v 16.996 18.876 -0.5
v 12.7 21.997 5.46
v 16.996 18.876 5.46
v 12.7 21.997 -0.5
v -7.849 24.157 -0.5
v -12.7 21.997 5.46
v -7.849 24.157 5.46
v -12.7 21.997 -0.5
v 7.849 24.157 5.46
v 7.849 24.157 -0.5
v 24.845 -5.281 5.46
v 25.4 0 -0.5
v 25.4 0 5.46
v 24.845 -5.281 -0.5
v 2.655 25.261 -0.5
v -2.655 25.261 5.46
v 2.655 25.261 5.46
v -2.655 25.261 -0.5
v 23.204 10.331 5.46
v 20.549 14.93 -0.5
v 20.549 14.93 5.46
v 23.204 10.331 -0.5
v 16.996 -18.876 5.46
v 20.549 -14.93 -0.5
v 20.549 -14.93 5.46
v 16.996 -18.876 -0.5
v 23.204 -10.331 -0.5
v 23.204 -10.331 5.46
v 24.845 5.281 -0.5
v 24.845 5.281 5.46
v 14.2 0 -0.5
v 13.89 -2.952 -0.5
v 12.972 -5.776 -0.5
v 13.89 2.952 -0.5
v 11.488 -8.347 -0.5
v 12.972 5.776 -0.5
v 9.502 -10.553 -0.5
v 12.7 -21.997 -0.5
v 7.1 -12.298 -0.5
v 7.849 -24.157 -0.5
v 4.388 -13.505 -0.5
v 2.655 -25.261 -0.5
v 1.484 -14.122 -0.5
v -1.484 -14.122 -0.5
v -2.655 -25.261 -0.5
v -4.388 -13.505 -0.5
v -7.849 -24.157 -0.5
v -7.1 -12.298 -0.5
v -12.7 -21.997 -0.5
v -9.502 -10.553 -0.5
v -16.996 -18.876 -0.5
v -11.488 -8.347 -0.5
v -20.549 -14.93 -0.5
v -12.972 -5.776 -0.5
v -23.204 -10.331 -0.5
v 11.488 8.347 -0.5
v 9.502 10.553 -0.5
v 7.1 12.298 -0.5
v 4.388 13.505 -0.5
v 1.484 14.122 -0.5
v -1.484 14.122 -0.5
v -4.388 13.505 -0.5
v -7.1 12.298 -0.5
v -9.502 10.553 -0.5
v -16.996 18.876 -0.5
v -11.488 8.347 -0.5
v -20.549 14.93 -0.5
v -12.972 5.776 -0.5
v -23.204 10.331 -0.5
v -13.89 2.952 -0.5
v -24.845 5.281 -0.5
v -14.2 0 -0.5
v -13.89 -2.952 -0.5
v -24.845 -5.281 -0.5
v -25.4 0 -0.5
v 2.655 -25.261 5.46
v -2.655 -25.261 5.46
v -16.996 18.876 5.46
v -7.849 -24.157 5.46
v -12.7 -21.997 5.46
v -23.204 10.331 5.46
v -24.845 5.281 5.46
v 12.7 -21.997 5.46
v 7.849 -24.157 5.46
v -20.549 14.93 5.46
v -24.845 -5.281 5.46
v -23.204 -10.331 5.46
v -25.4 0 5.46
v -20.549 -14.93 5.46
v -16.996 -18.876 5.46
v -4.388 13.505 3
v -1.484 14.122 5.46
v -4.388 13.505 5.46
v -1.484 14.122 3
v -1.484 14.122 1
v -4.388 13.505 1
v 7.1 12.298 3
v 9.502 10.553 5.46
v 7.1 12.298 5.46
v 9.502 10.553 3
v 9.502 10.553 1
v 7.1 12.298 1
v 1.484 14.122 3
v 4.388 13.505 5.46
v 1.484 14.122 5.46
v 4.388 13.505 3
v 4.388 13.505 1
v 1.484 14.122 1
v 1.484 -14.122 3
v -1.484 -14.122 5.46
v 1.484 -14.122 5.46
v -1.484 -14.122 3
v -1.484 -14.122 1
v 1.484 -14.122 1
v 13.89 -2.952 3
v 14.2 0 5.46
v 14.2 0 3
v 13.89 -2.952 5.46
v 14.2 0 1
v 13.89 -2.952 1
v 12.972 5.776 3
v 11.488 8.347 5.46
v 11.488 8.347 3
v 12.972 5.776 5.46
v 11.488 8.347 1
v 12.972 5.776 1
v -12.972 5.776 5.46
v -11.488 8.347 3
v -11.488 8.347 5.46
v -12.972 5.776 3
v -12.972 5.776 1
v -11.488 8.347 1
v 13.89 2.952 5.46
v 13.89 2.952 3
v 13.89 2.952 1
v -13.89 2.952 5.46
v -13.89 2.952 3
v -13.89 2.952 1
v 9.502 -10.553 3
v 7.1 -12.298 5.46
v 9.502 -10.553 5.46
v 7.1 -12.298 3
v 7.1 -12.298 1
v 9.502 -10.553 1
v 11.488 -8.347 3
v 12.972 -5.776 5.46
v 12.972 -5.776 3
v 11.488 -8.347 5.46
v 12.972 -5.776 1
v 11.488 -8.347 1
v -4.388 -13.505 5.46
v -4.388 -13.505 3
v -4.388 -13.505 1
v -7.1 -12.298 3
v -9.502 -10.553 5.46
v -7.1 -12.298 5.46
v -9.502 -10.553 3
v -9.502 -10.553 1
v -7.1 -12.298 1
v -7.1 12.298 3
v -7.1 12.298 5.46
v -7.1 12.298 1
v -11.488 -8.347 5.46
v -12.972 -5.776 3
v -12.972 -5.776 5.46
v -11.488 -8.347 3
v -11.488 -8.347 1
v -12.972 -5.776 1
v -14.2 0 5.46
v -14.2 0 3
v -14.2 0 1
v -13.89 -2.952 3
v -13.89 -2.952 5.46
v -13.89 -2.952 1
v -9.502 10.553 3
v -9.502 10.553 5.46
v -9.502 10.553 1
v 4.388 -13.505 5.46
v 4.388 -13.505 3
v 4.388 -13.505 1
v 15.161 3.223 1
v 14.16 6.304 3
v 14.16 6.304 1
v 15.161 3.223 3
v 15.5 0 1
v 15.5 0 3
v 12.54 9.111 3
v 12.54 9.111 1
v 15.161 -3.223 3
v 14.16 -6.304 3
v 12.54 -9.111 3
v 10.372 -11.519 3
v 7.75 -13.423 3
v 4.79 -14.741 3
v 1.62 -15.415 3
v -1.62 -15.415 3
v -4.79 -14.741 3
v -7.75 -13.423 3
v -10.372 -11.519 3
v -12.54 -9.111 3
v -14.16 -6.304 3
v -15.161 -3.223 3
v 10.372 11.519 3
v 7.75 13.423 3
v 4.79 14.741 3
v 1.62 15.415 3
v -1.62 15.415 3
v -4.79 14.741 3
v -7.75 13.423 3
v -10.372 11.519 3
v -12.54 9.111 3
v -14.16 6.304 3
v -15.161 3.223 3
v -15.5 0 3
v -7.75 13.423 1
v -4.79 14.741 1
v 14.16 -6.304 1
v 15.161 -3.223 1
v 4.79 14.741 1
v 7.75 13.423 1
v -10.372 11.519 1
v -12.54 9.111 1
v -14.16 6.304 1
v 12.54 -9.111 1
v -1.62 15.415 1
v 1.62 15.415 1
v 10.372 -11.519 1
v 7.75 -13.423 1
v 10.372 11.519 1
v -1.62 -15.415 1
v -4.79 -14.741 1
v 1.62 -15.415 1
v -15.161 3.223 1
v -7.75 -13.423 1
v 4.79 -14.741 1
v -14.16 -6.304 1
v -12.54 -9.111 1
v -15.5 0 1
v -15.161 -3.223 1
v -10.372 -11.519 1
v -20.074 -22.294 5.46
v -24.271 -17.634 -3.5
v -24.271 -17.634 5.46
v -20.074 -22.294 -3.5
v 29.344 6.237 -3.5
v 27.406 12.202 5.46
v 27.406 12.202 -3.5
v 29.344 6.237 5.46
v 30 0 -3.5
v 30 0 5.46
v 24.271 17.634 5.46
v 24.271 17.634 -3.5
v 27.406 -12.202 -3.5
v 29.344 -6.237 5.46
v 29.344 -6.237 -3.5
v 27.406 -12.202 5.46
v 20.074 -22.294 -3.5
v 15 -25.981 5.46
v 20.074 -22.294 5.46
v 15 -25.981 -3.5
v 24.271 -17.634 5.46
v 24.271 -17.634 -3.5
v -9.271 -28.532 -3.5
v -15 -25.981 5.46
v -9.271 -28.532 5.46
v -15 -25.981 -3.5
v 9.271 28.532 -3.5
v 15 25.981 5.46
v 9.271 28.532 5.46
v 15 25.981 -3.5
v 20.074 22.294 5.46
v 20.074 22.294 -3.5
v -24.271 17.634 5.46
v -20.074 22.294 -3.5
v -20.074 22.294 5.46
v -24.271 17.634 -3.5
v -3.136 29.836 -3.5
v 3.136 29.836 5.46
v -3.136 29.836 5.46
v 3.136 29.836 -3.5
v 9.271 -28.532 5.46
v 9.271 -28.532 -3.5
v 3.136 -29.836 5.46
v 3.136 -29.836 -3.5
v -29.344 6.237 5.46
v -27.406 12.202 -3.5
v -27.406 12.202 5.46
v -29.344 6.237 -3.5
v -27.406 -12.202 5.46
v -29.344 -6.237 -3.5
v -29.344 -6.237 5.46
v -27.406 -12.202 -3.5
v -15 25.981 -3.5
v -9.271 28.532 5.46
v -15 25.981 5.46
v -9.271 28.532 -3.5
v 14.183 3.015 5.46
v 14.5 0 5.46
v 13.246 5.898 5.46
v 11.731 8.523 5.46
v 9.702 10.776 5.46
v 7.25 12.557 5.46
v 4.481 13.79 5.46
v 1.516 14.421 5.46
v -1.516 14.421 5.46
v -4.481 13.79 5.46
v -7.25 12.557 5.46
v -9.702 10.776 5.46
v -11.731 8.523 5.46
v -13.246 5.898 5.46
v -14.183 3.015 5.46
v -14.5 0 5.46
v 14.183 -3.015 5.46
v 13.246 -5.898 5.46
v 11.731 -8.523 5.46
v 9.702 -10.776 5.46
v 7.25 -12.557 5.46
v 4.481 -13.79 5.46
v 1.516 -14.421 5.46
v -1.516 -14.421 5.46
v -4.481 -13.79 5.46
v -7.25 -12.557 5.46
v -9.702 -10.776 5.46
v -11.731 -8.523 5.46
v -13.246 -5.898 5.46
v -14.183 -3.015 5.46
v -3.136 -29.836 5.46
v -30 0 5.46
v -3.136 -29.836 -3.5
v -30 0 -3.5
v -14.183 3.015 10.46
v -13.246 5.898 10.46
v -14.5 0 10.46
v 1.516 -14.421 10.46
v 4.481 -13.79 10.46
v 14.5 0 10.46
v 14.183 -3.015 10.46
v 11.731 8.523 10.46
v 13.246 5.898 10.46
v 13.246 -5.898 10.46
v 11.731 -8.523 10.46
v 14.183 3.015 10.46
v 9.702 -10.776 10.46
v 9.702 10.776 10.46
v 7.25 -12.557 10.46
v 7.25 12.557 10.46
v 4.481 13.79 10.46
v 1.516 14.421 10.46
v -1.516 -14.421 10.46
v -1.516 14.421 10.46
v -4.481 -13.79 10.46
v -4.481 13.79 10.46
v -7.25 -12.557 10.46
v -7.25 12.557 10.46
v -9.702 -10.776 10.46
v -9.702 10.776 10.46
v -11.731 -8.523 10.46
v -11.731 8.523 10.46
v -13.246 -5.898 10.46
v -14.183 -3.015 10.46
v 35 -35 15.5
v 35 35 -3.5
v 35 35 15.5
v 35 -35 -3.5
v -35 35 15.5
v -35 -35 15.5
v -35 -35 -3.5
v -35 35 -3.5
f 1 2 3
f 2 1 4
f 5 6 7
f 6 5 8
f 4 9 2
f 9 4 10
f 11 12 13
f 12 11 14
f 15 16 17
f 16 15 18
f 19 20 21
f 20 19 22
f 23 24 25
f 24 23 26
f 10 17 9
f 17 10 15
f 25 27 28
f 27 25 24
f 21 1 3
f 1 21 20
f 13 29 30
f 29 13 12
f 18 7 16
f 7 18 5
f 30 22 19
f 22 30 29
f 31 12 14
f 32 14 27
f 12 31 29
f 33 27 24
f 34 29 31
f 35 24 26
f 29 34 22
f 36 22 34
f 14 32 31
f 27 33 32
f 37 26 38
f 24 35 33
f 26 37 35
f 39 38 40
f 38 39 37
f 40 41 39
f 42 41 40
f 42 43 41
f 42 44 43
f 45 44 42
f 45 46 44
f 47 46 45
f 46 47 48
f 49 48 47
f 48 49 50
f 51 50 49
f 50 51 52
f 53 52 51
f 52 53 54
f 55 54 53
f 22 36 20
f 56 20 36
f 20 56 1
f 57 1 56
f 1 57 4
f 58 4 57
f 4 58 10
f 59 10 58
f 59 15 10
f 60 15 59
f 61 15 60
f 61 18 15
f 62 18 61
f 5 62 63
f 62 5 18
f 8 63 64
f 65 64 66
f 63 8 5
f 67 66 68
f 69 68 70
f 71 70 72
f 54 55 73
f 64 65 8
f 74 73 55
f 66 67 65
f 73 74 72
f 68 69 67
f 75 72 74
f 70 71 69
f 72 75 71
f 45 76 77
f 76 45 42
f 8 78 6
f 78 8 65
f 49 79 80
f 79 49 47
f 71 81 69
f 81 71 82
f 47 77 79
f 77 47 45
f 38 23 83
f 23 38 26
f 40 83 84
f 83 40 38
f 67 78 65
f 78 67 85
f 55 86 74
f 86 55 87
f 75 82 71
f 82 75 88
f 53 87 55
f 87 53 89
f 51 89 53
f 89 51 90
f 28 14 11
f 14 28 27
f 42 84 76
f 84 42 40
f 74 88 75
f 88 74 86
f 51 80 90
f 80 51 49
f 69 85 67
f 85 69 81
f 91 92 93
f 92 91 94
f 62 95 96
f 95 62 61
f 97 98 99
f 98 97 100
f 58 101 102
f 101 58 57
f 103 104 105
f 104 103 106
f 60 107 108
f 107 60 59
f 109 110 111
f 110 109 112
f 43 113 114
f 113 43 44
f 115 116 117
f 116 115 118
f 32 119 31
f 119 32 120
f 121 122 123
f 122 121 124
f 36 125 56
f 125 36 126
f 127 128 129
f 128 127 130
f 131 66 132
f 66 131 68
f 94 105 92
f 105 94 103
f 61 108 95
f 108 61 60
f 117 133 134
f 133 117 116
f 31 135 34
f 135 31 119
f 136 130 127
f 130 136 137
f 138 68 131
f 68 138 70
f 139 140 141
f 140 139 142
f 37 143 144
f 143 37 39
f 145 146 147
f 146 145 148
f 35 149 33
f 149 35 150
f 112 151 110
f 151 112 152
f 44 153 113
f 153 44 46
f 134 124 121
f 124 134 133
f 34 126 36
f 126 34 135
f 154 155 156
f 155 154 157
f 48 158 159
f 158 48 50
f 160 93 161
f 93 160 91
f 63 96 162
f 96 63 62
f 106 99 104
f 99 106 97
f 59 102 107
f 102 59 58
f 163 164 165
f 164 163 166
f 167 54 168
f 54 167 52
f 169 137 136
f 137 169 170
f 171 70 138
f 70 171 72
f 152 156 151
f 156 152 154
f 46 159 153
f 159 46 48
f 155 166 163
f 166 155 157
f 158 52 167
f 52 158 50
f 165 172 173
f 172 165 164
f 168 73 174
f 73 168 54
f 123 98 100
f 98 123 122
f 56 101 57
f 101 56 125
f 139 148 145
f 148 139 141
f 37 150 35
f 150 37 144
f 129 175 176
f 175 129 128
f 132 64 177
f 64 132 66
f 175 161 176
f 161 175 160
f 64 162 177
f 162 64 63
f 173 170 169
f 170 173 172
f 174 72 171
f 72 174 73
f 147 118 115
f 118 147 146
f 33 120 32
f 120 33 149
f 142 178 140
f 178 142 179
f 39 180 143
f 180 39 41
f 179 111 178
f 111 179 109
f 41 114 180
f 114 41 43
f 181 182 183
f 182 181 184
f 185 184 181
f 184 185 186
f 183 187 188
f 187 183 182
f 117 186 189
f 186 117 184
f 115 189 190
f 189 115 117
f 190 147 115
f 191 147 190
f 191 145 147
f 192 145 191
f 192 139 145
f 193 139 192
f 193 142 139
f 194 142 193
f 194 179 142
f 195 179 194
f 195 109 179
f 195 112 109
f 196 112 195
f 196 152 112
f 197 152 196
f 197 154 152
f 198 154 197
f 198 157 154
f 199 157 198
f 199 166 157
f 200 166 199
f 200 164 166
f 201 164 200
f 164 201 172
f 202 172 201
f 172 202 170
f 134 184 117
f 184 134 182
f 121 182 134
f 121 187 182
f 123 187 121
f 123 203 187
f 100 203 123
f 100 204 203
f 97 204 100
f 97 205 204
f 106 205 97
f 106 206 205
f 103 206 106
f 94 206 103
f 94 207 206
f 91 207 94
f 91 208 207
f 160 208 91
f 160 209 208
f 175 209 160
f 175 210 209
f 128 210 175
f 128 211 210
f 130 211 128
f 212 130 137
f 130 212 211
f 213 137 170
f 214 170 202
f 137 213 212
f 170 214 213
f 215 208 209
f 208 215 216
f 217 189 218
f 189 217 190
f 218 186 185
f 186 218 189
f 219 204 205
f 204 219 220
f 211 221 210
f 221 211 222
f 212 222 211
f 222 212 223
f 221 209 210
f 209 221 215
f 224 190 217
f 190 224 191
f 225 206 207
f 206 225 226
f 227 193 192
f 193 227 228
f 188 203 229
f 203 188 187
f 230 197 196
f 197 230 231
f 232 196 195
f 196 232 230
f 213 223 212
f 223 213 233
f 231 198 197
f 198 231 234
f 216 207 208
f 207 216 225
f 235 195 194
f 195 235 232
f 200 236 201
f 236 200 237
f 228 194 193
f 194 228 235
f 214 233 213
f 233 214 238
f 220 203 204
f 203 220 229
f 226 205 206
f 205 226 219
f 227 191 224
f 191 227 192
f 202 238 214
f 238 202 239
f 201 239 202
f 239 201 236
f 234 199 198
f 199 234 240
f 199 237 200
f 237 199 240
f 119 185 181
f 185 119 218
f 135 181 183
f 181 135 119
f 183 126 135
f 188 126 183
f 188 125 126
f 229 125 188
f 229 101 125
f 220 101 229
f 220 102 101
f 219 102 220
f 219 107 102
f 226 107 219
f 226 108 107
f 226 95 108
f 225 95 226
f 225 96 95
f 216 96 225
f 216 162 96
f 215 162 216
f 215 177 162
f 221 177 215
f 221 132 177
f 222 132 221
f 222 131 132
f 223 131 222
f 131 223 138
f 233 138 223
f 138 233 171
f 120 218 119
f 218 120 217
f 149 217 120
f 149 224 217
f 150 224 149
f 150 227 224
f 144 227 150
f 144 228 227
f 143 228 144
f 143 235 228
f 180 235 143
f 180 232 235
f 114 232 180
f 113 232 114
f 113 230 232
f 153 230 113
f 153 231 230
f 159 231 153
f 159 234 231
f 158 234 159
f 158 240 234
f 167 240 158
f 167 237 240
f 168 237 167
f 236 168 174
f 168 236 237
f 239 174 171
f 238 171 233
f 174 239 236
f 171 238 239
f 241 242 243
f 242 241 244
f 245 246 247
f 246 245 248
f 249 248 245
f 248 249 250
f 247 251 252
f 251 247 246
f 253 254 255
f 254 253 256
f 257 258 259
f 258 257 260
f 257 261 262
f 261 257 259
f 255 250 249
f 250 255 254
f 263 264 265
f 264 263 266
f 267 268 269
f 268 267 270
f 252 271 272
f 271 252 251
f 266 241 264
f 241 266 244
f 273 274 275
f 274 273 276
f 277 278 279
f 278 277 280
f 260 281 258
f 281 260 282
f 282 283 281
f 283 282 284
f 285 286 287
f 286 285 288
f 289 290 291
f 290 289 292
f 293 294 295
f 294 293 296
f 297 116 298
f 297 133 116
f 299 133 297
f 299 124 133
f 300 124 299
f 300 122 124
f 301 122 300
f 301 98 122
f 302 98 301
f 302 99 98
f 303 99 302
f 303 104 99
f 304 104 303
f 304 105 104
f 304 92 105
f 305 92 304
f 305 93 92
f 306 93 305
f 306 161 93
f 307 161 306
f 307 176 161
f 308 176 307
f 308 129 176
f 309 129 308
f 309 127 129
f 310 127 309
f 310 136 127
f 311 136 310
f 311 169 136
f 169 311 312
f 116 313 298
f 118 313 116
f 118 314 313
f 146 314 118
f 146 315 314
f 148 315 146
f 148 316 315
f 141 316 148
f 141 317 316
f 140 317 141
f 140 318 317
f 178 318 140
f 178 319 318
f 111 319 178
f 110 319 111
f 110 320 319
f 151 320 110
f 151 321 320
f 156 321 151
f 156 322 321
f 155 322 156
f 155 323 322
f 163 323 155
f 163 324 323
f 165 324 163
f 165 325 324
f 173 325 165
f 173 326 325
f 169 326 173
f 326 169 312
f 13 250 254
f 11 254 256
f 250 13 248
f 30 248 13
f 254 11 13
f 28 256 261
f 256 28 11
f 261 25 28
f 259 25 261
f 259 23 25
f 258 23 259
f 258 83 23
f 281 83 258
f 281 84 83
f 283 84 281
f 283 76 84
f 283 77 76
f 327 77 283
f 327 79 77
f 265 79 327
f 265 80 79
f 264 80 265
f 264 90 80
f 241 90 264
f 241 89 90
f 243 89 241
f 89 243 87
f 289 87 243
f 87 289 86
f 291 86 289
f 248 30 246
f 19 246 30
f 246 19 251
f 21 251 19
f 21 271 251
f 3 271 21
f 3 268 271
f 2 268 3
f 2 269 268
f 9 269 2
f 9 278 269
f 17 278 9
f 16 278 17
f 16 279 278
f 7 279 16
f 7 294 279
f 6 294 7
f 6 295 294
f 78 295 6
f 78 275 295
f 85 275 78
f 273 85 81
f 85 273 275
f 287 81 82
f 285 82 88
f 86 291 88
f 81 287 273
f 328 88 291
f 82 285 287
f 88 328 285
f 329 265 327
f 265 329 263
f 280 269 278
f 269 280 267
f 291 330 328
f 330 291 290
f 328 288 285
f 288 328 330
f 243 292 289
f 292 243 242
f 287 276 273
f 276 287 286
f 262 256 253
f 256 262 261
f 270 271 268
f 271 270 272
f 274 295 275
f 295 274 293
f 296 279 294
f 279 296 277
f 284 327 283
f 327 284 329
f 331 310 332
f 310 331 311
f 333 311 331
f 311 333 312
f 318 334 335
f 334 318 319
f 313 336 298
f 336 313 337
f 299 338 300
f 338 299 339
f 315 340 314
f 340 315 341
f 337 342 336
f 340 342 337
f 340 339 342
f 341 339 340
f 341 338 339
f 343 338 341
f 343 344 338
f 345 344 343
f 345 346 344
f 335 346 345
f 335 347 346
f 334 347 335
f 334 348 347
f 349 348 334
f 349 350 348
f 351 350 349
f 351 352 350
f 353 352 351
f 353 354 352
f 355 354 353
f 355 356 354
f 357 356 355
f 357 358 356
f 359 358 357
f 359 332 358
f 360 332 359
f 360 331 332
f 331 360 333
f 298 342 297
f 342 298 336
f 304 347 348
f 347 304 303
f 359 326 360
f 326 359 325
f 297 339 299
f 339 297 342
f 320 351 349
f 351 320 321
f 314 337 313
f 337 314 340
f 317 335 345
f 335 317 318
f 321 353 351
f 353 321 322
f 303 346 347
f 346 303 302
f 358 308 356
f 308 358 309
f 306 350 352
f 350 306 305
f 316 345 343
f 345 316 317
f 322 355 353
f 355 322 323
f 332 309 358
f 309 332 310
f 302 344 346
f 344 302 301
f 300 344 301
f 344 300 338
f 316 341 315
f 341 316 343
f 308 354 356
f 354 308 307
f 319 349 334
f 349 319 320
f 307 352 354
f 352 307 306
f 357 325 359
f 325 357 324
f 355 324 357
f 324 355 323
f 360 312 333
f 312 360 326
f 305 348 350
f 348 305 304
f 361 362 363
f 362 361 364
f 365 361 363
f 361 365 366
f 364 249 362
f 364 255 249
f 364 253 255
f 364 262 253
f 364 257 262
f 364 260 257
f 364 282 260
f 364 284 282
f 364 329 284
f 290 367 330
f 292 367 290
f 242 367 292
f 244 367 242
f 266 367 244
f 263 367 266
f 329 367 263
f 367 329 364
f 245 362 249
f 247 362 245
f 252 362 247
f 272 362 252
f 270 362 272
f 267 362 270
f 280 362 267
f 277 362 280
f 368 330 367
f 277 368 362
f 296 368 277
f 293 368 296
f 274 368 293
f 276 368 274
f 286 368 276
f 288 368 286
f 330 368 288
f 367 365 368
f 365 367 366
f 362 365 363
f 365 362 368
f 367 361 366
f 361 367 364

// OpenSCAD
difference()
{
    translate([0,0,6]) {
        cube([70, 70, 19], center=true);
    }
    // thing being subtracted
    union() {
        difference()
        {
            difference()
            {
                cylinder(h=10.92, r1=30, r2=30, center=true);
                translate([0,0,14.5]) {
                    difference(){
                        difference()
                        {
                            cylinder(30, r1=25.4, r2=25.4, center=true);
                            cylinder(60, r1=14.2, r2=14.2, center=true);
                        }
                        translate([0,0,-12.5])
                            cylinder(2, r1=15.5, r2=15.5, center=true);
                    }
                }
            }
        }
        // extend the r=14.5 hole 5mm above the r=30 cylinder top
        translate([0,0,5.46])
            cylinder(h=5, r=14.5);
    }
}
